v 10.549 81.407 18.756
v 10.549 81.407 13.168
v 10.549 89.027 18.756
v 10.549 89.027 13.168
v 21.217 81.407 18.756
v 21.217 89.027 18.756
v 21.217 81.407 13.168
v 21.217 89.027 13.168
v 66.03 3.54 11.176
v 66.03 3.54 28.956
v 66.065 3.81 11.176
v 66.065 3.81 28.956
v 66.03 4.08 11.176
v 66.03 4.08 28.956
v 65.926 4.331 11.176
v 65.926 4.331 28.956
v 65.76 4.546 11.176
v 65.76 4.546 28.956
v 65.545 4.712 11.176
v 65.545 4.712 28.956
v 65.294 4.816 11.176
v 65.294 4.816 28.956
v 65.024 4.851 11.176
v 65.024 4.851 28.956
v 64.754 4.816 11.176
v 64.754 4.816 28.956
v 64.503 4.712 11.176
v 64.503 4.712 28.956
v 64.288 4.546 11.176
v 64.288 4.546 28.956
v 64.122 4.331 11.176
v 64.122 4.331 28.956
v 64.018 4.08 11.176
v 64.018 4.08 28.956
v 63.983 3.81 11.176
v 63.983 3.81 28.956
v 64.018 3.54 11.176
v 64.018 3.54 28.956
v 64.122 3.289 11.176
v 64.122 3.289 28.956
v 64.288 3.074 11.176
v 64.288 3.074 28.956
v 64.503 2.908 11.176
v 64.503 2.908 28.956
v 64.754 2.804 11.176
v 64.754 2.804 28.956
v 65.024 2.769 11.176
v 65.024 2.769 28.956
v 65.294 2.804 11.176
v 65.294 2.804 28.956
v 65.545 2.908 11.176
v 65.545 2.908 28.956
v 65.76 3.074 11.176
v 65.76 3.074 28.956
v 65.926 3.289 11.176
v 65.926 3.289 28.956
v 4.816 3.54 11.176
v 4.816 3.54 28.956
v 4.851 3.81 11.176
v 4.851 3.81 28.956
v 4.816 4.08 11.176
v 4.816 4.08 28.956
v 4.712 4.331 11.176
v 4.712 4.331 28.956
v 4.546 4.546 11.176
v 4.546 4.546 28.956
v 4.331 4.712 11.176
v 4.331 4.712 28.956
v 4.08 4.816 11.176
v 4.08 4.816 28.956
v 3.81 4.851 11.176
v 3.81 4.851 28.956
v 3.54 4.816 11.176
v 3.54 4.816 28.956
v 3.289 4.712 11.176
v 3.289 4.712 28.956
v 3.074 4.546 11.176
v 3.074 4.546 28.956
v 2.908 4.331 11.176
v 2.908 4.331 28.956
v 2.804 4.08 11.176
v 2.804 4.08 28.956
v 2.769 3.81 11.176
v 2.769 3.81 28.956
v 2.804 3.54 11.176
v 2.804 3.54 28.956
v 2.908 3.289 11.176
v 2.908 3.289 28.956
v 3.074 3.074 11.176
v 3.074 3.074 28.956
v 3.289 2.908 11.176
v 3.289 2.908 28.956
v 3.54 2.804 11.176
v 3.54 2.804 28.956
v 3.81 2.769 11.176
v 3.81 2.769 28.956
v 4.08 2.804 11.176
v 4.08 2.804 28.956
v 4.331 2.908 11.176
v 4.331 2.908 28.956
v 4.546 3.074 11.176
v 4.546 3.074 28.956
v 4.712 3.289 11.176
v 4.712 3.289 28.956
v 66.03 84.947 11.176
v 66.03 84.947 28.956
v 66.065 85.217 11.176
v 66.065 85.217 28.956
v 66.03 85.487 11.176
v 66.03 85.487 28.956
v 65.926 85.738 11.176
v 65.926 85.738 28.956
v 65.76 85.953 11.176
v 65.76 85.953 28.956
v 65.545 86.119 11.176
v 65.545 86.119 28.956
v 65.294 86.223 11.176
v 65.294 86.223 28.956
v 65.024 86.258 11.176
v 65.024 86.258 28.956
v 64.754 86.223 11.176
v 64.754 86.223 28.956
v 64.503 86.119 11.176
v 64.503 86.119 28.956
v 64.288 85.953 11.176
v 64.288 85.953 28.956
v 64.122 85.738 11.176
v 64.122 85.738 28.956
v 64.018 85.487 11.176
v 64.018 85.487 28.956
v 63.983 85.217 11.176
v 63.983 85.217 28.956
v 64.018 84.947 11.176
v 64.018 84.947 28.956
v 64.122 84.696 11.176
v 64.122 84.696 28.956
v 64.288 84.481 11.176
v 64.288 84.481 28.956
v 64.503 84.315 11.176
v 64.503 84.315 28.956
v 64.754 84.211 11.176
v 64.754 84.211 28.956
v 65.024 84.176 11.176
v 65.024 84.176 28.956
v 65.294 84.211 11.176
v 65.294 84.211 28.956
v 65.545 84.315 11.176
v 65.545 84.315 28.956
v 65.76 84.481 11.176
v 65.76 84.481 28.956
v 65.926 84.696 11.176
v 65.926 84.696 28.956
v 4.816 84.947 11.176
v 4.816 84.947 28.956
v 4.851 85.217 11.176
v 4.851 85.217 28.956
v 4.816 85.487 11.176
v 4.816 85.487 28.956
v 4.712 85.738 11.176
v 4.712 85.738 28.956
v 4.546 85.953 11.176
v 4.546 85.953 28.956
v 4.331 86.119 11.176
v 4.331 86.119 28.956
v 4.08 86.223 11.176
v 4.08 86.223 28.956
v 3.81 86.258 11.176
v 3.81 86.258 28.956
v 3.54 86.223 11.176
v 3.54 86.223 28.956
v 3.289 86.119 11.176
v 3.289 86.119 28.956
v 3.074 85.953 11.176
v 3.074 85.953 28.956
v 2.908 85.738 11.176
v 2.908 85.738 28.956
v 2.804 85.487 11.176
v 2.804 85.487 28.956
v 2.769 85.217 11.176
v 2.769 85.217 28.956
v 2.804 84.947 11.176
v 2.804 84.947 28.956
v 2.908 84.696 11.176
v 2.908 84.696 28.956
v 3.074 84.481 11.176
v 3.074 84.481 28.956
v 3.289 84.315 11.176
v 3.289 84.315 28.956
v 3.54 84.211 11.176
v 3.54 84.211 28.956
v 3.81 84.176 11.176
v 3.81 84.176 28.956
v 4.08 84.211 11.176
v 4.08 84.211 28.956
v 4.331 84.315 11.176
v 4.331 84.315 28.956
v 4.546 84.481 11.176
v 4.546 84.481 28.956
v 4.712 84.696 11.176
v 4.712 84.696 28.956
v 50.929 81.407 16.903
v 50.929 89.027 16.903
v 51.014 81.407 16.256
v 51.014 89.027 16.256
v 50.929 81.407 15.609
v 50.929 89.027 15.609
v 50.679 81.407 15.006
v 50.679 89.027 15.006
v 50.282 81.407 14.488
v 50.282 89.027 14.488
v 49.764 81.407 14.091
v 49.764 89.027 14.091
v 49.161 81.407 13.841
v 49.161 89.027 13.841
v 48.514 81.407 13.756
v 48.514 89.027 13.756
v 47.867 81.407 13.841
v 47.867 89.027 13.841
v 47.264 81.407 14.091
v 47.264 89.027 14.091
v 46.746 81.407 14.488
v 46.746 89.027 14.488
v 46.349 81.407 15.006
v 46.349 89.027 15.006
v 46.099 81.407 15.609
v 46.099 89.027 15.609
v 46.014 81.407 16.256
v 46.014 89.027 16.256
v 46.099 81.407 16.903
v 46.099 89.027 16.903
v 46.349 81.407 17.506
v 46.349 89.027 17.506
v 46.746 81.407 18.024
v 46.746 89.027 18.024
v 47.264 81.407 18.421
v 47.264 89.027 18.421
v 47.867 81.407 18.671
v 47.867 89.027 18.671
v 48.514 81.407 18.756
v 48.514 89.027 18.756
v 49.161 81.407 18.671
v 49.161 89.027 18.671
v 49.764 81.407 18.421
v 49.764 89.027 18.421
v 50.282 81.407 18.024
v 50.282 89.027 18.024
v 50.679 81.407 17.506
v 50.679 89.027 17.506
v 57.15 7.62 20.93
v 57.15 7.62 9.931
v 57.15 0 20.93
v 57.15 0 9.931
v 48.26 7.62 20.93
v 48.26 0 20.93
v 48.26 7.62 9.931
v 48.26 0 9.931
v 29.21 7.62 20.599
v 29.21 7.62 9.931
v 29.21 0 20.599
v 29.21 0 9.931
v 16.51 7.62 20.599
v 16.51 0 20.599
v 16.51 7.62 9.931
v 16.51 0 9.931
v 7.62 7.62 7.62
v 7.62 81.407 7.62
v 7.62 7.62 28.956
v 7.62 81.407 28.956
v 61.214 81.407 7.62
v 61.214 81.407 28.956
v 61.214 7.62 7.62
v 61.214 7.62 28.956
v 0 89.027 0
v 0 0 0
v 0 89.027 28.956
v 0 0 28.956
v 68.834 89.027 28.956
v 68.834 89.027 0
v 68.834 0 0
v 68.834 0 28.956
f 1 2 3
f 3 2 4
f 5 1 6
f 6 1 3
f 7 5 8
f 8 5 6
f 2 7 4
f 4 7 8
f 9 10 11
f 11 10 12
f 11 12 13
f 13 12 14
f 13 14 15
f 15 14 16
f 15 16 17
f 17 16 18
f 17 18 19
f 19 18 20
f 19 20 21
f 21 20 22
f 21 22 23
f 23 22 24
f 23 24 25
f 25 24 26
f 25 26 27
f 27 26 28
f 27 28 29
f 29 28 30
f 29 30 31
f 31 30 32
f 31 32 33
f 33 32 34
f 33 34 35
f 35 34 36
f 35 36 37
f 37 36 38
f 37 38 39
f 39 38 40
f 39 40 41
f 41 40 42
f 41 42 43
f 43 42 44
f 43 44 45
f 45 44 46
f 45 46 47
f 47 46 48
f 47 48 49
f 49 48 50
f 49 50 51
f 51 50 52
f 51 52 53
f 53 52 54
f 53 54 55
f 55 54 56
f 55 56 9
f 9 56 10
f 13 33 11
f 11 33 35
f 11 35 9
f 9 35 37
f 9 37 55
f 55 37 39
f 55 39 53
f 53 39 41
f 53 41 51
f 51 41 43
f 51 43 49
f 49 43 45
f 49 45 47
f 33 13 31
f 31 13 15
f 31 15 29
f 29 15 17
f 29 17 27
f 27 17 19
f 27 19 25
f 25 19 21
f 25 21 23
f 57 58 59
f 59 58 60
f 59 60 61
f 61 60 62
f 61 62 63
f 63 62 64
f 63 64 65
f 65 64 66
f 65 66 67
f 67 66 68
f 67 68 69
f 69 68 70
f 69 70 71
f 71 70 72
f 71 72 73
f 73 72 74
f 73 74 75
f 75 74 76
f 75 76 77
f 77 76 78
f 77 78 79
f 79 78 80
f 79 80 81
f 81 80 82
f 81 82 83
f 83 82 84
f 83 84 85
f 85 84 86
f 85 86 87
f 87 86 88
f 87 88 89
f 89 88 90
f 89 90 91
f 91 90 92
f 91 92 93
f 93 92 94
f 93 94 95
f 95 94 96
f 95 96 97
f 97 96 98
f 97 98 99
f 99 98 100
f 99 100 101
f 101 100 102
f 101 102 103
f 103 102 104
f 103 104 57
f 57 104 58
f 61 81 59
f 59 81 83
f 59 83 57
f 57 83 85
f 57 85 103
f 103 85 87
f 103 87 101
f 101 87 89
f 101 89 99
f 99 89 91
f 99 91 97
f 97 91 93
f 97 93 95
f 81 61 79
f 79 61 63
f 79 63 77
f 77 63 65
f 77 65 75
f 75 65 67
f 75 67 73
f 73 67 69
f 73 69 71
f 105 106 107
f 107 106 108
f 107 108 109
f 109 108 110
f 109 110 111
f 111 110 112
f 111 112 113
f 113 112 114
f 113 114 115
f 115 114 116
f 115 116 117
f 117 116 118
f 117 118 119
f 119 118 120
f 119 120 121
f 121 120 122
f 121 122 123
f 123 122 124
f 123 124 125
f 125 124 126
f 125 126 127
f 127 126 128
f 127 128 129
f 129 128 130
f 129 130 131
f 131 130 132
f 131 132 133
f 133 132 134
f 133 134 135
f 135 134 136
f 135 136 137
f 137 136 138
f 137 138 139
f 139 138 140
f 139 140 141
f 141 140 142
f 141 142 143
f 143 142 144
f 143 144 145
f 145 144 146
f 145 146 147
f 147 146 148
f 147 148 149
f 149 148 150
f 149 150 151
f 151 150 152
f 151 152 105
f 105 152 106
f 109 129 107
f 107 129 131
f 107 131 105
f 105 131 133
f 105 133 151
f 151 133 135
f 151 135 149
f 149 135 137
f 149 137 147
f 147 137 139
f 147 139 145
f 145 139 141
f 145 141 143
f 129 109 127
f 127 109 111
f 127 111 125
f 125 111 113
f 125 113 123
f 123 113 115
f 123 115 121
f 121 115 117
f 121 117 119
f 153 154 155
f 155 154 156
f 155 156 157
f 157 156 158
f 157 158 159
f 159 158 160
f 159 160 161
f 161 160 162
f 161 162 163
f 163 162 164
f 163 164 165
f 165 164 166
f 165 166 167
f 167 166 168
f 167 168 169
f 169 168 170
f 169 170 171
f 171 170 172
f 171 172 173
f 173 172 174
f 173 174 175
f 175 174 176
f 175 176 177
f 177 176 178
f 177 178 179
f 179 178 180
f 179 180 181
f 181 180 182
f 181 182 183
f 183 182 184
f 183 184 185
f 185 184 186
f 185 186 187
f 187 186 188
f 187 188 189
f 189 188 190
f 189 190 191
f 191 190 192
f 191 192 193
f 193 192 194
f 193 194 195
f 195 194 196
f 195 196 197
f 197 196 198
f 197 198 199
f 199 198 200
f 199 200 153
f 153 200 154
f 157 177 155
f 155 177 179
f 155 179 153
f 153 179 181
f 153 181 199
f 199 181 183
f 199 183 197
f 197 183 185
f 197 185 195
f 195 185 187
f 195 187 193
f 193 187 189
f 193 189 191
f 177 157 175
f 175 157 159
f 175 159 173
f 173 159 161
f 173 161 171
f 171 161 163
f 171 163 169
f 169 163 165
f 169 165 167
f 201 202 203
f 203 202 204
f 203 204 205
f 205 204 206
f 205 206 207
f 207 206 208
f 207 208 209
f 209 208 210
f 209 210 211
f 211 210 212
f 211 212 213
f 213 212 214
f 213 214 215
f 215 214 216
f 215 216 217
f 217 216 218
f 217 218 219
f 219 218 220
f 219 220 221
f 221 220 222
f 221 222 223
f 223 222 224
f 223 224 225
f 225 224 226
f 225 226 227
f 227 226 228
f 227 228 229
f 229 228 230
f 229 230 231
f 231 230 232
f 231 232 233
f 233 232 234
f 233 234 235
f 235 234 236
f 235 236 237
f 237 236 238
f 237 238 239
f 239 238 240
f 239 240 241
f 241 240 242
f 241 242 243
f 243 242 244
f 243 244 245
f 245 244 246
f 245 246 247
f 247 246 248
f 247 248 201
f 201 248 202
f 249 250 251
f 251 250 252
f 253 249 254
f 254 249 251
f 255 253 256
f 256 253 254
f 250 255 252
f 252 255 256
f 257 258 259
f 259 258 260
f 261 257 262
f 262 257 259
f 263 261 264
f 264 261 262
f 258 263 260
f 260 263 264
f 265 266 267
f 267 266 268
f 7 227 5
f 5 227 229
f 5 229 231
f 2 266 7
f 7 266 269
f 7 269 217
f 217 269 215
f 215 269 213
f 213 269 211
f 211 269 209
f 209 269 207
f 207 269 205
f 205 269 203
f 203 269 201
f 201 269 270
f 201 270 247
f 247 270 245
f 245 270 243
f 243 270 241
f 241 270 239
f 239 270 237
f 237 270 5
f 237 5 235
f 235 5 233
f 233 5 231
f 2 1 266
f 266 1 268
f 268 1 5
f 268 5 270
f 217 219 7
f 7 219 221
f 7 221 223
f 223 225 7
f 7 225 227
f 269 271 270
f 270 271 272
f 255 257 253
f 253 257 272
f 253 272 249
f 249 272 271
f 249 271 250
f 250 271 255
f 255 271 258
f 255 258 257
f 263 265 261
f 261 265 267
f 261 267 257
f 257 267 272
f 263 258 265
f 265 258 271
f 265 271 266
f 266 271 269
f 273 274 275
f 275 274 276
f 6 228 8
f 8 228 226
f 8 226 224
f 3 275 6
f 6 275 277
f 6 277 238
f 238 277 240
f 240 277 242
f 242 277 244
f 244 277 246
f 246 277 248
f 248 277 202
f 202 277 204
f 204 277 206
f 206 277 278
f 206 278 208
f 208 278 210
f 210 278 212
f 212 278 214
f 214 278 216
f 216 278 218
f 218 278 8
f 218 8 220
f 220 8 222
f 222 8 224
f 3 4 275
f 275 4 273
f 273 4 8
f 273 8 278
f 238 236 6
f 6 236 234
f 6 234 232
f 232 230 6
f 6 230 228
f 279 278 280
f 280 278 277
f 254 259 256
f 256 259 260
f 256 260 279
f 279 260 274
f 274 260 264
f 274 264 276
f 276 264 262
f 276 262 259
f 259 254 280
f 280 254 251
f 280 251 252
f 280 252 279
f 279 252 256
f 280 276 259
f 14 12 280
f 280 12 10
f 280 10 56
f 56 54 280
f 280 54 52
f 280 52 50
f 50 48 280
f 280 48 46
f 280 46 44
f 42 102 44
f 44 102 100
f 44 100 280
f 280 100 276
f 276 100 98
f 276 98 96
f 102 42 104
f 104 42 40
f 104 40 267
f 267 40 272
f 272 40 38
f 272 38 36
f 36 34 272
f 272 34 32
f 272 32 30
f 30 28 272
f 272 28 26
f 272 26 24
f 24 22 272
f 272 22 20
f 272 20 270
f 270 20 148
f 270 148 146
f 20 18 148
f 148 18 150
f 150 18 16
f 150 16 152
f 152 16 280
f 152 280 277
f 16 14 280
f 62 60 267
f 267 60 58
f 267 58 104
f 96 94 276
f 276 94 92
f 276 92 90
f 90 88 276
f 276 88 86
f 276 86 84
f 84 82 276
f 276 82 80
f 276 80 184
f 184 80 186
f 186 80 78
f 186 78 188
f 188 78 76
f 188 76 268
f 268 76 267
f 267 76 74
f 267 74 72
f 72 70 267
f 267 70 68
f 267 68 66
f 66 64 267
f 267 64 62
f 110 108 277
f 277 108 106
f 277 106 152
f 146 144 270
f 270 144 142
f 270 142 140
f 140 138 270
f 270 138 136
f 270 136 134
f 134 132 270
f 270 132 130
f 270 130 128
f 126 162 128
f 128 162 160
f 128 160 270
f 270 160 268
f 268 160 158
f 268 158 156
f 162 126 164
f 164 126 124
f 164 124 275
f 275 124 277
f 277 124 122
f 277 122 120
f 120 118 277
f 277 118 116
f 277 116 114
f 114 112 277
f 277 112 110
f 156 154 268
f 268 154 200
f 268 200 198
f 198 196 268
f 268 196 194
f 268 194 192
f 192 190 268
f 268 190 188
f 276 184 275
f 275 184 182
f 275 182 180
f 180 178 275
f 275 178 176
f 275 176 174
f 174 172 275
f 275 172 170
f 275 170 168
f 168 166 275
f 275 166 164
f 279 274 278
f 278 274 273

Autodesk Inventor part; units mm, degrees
ref_plane "YZ Plane" through (0, 0, 0) normal (1, 0, 0) x (0, 1, 0)
ref_plane "XZ Plane" through (0, 0, 0) normal (0, 1, 0) x (-1, 0, 0)
ref_plane "XY Plane" through (0, 0, 0) normal (0, 0, 1) x (1, 0, 0)
sketch "Sketch8" plane through (0, 0, 0) normal (0, 0, 1) x (1, 0, 0)
  line L0 (0, 0) -> (68.834, 0)
  line L1 (68.834, 0) -> (68.834, 89.027)
  line L2 (68.834, 89.027) -> (0, 89.027)
  line L3 (0, 89.027) -> (0, 0)
  dimension "d20" = 89.027
  dimension "d21" = 68.834
extrude "Extrusion6" add sketch "Sketch8" along normal blind 28.956
shell "Shell2" thickness 7.62 removed faces 1 at (45.8893, 29.6757, 28.956)
sketch "Sketch9" plane through (0, 0, 0) normal (0, -1, 0) x (1, 0, 0)
  point P0 (0, 0)
sketch "Sketch10" plane through (0, 0, 0) normal (0, -1, 0) x (1, 0, 0)
  line L0 (16.51, 20.5994) -> (29.21, 20.5994)
  line L1 (29.21, 20.5994) -> (29.21, 9.9314)
  line L2 (29.21, 9.9314) -> (16.51, 9.9314)
  line L3 (16.51, 9.9314) -> (16.51, 20.5994)
  line L4 (0, 0) -> (68.834, 0) projected
  line L5 (0, 0) -> (0, 28.956) projected
  line L6 (48.26, 20.9296) -> (57.15, 20.9296)
  line L7 (57.15, 20.9296) -> (57.15, 9.9314)
  line L8 (57.15, 9.9314) -> (48.26, 9.9314)
  line L9 (48.26, 9.9314) -> (48.26, 20.9296)
  line L10 (68.834, 0) -> (68.834, 28.956) projected
  dimension "d25" = 10.668
  dimension "d26" = 12.7
  dimension "d27" = 9.9314
  dimension "d28" = 16.51
  dimension "d29" = 10.9982
  dimension "d30" = 8.89
  dimension "d31" = 9.9314
  dimension "d32" = 11.684
extrude "Extrusion7" cut sketch "Sketch10" against normal blind 28.956 contours L0 L1 L2 L3
extrude "Extrusion8" cut sketch "Sketch10" against normal blind 28.956 contours L6 L7 L8 L9
sketch "Sketch11" plane through (7.62, 81.407, 7.62) normal (0, -1, 0) x (1, 0, 0)
  point P0 (-7.62, -7.62)
sketch "Sketch12" plane through (0, 89.027, 0) normal (0, 1, 0) x (1, 0, 0)
  circle A0 centre (48.514, -16.256) radius 2.5
  line L0 (68.834, 0) -> (68.834, -28.956) projected
  line L1 (68.834, -28.956) -> (0, -28.956) projected
  point P0 (0, 0)
  dimension "d37" = 5
  dimension "d38" = 20.32
  dimension "d39" = 12.7
extrude "Extrusion9" cut sketch "Sketch12" against normal blind 28.956
sketch "Sketch13" plane through (0, 0, 28.956) normal (0, 0, 1) x (1, 0, 0)
  line L0 (0, 89.027) -> (0, 0) projected
  line L1 (0, 89.027) -> (7.62, 81.407)
  circle A0 centre (3.81, 85.217) radius 1.0414
  line L2 (7.62, 81.407) -> (61.214, 81.407) projected
  line L3 (61.214, 81.407) -> (68.834, 89.027)
  line L4 (7.62, 7.62) -> (61.214, 7.62) projected
  line L5 (7.62, 7.62) -> (0, 0)
  line L6 (0, 0) -> (68.834, 0) projected
  line L7 (61.214, 7.62) -> (68.834, 0)
  circle A1 centre (65.024, 85.217) radius 1.0414
  circle A2 centre (3.81, 3.81) radius 1.0414
  circle A3 centre (65.024, 3.81) radius 1.0414
  dimension "d42" = 2.0828
  dimension "d43" = 2.0828
  dimension "d44" = 2.0828
  dimension "d45" = 2.0828
extrude "Extrusion10" cut sketch "Sketch13" against normal blind 17.78 contours A0 L1 | L1 A0
extrude "Extrusion11" cut sketch "Sketch13" against normal blind 17.78 contours A1 L3 | L3 A1
extrude "Extrusion12" cut sketch "Sketch13" against normal blind 17.78 contours A2 L5 | L5 A2
extrude "Extrusion13" cut sketch "Sketch13" against normal blind 17.78 contours A3 L7 | L7 A3
sketch "Sketch14" plane through (0, 89.027, 0) normal (0, 1, 0) x (1, 0, 0)
  line L0 (21.2173, -18.756) -> (10.5493, -18.756)
  line L1 (10.5493, -18.756) -> (10.5493, -13.168)
  line L2 (10.5493, -13.168) -> (21.2173, -13.168)
  line L3 (21.2173, -13.168) -> (21.2173, -18.756)
  circle A0 centre (48.514, -16.256) radius 2.5 projected
  point P0 (0, 0)
  dimension "d54" = 10.668
  dimension "d55" = 5.588
  dimension "d56" = 0
extrude "Extrusion14" cut sketch "Sketch14" against normal blind 17.78 contours L0 L1 L2 L3
properties part number "arduinoCase"
